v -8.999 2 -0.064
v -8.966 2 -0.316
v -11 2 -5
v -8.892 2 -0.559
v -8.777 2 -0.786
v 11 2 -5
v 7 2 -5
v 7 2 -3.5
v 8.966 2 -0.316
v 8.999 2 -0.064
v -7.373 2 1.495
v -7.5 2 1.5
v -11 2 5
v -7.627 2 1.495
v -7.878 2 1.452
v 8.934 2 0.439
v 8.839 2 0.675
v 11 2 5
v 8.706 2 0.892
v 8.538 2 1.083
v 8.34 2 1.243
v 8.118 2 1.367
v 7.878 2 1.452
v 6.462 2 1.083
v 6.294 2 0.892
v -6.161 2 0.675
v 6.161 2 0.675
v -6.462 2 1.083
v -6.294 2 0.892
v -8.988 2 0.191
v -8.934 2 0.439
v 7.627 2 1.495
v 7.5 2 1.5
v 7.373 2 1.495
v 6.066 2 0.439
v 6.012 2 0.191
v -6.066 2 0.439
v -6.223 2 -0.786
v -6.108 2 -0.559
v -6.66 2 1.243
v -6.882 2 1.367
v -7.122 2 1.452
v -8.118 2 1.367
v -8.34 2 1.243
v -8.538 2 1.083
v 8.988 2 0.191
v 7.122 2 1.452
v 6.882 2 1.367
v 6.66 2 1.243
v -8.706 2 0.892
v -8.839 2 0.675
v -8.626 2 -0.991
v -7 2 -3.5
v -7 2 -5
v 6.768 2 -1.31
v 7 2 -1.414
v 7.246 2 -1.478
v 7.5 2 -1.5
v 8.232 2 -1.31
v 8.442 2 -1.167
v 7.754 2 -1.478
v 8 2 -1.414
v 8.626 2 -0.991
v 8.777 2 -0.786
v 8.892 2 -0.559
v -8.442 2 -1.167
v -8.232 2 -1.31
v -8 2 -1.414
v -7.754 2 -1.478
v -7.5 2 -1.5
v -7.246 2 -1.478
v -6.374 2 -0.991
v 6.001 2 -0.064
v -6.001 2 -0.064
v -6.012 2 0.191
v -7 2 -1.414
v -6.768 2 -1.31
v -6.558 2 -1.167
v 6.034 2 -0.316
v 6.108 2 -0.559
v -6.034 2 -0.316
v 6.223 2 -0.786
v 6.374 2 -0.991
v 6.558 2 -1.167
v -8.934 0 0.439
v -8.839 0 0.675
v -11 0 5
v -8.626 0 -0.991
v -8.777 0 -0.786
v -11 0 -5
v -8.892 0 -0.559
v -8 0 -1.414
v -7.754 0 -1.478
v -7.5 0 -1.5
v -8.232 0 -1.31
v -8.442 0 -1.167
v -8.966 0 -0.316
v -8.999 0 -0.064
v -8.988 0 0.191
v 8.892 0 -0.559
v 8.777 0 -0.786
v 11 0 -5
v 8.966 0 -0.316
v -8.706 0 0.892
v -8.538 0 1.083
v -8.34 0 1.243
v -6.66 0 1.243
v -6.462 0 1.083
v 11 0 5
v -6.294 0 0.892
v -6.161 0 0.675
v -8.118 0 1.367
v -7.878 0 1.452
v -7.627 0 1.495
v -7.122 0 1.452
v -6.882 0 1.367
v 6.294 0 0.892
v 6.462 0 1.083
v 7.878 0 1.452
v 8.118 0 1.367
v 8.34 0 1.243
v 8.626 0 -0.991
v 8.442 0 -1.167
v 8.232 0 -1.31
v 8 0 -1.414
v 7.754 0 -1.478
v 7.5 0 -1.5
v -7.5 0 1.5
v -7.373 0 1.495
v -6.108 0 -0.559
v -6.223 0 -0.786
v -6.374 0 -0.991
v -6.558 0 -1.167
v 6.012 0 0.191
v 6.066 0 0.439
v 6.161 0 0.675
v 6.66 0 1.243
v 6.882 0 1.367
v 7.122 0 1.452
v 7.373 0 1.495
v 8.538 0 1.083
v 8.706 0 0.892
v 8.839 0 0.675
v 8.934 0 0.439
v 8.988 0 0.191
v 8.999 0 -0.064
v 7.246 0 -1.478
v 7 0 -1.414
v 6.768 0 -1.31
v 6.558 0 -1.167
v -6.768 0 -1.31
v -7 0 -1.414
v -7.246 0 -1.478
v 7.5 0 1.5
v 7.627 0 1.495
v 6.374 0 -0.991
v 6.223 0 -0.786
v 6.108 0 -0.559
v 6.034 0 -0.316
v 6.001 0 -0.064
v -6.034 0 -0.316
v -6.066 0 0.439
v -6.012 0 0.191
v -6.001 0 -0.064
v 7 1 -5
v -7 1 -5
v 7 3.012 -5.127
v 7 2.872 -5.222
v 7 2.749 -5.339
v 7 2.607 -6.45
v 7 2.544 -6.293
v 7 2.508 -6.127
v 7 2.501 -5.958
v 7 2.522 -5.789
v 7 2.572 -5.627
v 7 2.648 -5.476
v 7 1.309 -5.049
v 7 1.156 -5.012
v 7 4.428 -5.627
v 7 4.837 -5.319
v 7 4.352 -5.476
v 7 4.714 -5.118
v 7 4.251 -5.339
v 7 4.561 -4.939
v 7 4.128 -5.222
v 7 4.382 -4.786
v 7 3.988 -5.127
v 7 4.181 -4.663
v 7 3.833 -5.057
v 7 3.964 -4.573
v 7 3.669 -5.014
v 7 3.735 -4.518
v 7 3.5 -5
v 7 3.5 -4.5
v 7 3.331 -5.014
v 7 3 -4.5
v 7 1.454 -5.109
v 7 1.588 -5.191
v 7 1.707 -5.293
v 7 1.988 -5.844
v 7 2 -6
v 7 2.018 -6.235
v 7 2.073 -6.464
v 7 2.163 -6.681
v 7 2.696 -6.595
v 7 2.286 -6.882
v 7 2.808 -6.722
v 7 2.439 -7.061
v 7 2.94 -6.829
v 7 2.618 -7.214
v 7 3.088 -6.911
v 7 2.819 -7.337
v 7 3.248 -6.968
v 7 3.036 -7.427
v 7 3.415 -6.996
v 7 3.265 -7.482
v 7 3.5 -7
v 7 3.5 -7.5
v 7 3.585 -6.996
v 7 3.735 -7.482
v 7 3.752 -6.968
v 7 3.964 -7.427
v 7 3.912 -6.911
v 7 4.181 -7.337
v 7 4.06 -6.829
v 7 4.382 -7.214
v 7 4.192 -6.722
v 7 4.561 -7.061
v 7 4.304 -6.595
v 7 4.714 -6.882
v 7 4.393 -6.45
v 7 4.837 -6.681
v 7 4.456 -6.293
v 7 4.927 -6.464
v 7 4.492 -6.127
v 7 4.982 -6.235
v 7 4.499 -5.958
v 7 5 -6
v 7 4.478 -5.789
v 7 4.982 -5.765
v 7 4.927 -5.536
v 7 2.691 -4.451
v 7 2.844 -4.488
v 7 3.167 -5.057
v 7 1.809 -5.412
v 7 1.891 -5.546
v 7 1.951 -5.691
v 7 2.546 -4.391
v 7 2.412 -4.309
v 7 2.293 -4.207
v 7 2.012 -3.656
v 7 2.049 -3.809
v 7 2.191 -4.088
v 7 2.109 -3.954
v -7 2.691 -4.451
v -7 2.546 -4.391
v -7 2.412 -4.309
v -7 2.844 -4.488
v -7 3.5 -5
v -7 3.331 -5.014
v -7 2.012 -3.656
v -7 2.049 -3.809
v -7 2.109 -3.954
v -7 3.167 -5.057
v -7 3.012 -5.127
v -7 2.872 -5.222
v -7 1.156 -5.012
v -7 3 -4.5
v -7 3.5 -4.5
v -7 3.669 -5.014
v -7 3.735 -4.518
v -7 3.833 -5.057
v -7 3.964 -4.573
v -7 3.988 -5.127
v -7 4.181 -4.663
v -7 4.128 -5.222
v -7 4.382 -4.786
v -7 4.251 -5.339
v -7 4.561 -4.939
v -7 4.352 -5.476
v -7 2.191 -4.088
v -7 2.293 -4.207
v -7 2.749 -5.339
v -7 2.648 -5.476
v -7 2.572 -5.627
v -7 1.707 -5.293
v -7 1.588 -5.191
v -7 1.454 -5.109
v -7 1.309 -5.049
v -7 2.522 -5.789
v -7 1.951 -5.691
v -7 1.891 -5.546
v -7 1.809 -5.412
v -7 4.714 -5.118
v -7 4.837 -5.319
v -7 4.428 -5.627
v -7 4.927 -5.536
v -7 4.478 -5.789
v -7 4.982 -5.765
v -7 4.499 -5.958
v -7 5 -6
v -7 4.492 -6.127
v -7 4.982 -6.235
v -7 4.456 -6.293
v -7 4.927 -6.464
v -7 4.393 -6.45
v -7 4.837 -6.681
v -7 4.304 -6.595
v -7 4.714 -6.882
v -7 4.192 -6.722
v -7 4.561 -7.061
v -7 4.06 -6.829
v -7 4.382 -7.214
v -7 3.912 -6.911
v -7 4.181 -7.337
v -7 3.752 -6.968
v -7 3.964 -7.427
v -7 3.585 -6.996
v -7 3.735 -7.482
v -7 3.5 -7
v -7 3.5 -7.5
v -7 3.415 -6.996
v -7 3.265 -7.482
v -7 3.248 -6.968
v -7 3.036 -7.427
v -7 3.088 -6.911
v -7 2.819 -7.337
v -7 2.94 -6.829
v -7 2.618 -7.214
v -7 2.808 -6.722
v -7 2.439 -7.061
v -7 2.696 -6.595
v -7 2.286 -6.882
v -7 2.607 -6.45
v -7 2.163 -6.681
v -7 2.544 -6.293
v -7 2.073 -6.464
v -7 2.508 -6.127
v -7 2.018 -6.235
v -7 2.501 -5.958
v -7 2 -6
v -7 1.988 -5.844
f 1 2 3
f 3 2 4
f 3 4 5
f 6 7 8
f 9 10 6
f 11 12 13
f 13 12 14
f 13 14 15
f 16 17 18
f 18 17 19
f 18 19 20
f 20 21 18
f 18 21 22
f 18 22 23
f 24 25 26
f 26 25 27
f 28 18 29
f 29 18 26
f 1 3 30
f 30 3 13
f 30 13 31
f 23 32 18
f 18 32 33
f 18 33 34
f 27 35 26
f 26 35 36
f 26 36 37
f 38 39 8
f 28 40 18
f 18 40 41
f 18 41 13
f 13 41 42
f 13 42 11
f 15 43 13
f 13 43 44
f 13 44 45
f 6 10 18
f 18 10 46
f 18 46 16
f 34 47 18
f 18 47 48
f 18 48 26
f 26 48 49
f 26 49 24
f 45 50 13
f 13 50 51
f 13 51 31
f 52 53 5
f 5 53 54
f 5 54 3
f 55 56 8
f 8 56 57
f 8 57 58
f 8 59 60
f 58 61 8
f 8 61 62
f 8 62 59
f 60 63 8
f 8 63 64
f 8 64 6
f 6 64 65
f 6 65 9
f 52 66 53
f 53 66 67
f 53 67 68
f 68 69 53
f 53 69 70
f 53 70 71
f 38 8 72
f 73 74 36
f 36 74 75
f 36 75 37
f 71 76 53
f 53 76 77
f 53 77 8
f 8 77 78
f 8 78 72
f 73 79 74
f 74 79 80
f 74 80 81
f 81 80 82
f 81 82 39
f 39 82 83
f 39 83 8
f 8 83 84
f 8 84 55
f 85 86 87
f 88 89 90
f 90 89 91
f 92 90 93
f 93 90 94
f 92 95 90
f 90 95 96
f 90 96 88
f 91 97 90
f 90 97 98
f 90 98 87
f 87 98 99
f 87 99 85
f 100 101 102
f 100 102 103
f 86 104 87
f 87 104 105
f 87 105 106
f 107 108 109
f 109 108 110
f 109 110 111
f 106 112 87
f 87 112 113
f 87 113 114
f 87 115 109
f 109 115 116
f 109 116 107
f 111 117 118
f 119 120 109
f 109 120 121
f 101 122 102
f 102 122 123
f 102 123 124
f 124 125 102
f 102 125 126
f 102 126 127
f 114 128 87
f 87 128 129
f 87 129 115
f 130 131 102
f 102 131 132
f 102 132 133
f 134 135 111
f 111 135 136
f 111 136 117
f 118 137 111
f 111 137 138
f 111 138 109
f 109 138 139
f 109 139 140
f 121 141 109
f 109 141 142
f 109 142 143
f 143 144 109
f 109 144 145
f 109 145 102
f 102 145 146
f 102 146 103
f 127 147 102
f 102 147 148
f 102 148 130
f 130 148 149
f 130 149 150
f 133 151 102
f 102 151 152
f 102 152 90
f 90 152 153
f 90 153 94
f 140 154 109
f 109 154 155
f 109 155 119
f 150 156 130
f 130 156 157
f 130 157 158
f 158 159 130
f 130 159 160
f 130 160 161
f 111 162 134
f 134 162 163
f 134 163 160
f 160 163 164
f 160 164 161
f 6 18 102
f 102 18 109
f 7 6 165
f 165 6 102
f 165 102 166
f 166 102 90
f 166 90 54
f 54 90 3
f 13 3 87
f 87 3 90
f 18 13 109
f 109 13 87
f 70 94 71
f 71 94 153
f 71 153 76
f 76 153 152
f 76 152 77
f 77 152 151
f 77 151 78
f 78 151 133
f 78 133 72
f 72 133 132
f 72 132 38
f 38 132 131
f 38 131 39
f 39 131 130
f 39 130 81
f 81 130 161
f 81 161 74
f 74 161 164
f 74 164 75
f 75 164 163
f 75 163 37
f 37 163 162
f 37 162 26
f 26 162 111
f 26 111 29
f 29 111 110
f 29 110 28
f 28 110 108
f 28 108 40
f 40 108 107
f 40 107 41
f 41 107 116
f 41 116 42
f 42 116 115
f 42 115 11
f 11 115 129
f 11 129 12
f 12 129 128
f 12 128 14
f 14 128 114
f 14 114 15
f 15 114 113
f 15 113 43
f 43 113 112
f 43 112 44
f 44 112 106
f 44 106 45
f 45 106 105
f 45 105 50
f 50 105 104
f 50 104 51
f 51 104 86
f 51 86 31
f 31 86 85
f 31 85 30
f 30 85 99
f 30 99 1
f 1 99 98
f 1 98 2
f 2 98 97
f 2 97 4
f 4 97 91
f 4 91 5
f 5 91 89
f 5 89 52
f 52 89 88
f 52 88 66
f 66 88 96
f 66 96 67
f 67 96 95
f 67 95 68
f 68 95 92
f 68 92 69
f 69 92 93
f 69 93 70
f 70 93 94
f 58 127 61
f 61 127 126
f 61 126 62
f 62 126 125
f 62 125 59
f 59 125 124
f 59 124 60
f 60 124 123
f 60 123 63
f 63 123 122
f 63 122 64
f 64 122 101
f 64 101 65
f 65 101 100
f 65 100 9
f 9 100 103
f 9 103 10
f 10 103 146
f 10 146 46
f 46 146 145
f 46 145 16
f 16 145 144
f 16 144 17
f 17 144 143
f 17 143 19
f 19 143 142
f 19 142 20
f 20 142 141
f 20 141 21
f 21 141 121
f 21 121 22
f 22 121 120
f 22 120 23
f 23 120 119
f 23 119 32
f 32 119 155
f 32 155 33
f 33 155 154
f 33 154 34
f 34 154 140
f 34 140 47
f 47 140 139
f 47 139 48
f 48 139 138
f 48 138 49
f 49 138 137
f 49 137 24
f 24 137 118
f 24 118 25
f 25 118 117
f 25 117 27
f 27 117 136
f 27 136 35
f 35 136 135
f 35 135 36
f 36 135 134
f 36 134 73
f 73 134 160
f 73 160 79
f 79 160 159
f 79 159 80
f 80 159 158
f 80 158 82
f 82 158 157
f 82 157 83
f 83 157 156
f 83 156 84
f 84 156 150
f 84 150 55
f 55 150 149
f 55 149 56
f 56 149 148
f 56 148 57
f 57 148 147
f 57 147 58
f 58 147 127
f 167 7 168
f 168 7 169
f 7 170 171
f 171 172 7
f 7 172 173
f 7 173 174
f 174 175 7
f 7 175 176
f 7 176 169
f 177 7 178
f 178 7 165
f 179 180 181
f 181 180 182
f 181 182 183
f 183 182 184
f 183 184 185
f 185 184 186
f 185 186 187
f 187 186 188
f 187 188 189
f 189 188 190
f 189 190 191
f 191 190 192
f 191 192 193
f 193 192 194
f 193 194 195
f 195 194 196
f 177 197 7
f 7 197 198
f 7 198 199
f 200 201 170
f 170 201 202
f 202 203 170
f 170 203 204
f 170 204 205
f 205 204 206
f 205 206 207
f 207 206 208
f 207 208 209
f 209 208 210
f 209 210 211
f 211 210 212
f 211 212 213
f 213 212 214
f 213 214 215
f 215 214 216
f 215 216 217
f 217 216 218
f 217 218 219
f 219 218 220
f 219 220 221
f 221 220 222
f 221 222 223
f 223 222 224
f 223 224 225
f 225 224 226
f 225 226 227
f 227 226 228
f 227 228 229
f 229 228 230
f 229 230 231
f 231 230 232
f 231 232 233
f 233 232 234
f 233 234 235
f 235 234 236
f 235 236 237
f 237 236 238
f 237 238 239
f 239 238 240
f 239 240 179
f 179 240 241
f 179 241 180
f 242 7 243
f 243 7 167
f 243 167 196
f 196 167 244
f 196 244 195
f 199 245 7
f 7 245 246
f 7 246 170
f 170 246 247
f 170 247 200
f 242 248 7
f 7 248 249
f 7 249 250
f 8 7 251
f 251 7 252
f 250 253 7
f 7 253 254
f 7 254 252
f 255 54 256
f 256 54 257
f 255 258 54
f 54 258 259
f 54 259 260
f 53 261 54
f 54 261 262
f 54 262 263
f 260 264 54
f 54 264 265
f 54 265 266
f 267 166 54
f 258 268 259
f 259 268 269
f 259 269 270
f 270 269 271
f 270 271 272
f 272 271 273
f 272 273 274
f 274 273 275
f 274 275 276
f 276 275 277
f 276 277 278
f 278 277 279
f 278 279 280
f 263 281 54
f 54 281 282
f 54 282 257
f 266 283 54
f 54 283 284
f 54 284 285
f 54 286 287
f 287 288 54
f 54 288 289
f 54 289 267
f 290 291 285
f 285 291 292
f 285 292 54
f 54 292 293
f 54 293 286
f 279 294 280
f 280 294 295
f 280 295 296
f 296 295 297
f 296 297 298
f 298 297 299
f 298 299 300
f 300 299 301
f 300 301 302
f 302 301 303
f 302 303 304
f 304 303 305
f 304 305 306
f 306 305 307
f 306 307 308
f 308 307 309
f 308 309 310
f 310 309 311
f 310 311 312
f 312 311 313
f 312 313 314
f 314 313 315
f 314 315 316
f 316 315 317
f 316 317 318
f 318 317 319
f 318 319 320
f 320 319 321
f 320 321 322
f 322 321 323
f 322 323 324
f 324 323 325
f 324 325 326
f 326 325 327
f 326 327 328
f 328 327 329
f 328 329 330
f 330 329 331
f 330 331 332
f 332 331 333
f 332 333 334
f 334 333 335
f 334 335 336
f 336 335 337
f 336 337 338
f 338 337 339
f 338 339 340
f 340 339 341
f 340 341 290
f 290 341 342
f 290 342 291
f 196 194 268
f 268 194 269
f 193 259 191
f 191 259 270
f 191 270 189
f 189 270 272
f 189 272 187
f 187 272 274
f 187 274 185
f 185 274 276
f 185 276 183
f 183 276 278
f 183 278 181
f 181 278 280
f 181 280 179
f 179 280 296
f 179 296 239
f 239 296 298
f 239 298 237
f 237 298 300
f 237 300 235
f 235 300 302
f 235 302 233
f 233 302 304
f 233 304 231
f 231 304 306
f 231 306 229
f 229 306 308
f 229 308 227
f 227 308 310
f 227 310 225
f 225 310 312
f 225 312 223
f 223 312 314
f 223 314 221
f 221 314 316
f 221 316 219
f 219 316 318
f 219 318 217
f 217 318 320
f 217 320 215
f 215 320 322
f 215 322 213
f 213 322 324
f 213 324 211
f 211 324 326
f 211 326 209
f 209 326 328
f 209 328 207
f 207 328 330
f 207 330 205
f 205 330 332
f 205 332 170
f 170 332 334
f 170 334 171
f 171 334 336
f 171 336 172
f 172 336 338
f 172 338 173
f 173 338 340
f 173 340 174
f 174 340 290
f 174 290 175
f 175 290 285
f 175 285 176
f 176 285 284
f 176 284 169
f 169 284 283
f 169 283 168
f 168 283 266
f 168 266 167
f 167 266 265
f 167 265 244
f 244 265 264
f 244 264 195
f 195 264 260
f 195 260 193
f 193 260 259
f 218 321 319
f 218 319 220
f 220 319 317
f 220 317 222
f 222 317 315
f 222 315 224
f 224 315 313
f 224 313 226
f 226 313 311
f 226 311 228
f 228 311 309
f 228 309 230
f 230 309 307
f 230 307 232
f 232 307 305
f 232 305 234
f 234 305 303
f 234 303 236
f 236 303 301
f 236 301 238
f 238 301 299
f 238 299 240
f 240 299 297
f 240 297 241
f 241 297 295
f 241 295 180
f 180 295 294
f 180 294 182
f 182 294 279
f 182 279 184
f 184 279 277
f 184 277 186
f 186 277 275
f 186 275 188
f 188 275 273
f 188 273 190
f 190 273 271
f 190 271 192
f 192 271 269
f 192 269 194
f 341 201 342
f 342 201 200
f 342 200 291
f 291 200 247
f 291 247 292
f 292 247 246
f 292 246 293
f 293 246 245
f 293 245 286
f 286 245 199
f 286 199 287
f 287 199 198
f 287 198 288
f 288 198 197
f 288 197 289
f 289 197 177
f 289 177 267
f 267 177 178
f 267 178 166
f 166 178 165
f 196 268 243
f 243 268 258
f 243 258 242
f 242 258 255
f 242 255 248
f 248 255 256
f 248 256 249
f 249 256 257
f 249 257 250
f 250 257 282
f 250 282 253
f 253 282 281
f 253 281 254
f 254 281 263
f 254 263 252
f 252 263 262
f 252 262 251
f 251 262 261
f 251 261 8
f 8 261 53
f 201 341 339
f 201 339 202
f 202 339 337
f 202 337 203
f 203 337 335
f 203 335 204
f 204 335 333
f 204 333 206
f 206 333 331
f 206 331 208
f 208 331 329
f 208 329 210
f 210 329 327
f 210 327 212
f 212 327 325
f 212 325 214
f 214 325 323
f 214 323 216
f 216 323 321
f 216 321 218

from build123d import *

# Parameters (mm, degrees)
SKETCH2_W           = 22
SKETCH2_H           = 10
SKETCH2_R           = 1.5
BOSS_EXTRUDE1_DEPTH = 2
SKETCH3_W           = 3
SKETCH3_H           = 3
SKETCH3_R           = 1
BOSS_EXTRUDE2_DEPTH = 7
FILLET1_R           = 1.5
FILLET2_R           = 1
FILLET3_R           = 1.5


with BuildPart() as part:
    # Sketch2 → Boss-Extrude1 (new body)
    with BuildSketch(Plane(origin=(0, 0, 0), x_dir=(1, 0, 0), z_dir=(0, 1, 0))):
        Rectangle(SKETCH2_W, SKETCH2_H)
        with Locations(Location((-7.5, 0, 0), (0, 0, 270))):
            Circle(SKETCH2_R, mode=Mode.SUBTRACT)
        with Locations(Location((7.5, 0, 0), (0, 0, 270))):
            Circle(SKETCH2_R, mode=Mode.SUBTRACT)
    extrude(amount=BOSS_EXTRUDE1_DEPTH)

    # Sketch3 → Boss-Extrude2 (add, symmetric)
    with BuildSketch(Plane(origin=(0, 0, 0), x_dir=(0, 0, -1), z_dir=(1, 0, 0))):
        with Locations((6, 3.5)):
            Rectangle(SKETCH3_W, SKETCH3_H)
        with Locations((6, 3.5)):
            Circle(SKETCH3_R, mode=Mode.SUBTRACT)
    extrude(amount=BOSS_EXTRUDE2_DEPTH, both=True)

    # Fillet1
    fillet1_edges = [part.edges().sort_by_distance(p)[0] for p in [
        (0, 5, -4.5),
        (0, 5, -7.5),
    ]]
    fillet(fillet1_edges, radius=FILLET1_R - 0.0001)  # a hair under: the kernel refuses the full size

    # Fillet2
    fillet2_edges = [part.edges().sort_by_distance(p)[0] for p in [
        (0, 2, -5),
        (0, 2, -4.5),
    ]]
    fillet(fillet2_edges, radius=FILLET2_R)

    # Fillet3
    fillet3_edges = [part.edges().sort_by_distance(p)[0] for p in [
        (0, 2, -7.5),
    ]]
    fillet(fillet3_edges, radius=FILLET3_R - 0.0001)  # a hair under: the kernel refuses the full size


solid = part.part
